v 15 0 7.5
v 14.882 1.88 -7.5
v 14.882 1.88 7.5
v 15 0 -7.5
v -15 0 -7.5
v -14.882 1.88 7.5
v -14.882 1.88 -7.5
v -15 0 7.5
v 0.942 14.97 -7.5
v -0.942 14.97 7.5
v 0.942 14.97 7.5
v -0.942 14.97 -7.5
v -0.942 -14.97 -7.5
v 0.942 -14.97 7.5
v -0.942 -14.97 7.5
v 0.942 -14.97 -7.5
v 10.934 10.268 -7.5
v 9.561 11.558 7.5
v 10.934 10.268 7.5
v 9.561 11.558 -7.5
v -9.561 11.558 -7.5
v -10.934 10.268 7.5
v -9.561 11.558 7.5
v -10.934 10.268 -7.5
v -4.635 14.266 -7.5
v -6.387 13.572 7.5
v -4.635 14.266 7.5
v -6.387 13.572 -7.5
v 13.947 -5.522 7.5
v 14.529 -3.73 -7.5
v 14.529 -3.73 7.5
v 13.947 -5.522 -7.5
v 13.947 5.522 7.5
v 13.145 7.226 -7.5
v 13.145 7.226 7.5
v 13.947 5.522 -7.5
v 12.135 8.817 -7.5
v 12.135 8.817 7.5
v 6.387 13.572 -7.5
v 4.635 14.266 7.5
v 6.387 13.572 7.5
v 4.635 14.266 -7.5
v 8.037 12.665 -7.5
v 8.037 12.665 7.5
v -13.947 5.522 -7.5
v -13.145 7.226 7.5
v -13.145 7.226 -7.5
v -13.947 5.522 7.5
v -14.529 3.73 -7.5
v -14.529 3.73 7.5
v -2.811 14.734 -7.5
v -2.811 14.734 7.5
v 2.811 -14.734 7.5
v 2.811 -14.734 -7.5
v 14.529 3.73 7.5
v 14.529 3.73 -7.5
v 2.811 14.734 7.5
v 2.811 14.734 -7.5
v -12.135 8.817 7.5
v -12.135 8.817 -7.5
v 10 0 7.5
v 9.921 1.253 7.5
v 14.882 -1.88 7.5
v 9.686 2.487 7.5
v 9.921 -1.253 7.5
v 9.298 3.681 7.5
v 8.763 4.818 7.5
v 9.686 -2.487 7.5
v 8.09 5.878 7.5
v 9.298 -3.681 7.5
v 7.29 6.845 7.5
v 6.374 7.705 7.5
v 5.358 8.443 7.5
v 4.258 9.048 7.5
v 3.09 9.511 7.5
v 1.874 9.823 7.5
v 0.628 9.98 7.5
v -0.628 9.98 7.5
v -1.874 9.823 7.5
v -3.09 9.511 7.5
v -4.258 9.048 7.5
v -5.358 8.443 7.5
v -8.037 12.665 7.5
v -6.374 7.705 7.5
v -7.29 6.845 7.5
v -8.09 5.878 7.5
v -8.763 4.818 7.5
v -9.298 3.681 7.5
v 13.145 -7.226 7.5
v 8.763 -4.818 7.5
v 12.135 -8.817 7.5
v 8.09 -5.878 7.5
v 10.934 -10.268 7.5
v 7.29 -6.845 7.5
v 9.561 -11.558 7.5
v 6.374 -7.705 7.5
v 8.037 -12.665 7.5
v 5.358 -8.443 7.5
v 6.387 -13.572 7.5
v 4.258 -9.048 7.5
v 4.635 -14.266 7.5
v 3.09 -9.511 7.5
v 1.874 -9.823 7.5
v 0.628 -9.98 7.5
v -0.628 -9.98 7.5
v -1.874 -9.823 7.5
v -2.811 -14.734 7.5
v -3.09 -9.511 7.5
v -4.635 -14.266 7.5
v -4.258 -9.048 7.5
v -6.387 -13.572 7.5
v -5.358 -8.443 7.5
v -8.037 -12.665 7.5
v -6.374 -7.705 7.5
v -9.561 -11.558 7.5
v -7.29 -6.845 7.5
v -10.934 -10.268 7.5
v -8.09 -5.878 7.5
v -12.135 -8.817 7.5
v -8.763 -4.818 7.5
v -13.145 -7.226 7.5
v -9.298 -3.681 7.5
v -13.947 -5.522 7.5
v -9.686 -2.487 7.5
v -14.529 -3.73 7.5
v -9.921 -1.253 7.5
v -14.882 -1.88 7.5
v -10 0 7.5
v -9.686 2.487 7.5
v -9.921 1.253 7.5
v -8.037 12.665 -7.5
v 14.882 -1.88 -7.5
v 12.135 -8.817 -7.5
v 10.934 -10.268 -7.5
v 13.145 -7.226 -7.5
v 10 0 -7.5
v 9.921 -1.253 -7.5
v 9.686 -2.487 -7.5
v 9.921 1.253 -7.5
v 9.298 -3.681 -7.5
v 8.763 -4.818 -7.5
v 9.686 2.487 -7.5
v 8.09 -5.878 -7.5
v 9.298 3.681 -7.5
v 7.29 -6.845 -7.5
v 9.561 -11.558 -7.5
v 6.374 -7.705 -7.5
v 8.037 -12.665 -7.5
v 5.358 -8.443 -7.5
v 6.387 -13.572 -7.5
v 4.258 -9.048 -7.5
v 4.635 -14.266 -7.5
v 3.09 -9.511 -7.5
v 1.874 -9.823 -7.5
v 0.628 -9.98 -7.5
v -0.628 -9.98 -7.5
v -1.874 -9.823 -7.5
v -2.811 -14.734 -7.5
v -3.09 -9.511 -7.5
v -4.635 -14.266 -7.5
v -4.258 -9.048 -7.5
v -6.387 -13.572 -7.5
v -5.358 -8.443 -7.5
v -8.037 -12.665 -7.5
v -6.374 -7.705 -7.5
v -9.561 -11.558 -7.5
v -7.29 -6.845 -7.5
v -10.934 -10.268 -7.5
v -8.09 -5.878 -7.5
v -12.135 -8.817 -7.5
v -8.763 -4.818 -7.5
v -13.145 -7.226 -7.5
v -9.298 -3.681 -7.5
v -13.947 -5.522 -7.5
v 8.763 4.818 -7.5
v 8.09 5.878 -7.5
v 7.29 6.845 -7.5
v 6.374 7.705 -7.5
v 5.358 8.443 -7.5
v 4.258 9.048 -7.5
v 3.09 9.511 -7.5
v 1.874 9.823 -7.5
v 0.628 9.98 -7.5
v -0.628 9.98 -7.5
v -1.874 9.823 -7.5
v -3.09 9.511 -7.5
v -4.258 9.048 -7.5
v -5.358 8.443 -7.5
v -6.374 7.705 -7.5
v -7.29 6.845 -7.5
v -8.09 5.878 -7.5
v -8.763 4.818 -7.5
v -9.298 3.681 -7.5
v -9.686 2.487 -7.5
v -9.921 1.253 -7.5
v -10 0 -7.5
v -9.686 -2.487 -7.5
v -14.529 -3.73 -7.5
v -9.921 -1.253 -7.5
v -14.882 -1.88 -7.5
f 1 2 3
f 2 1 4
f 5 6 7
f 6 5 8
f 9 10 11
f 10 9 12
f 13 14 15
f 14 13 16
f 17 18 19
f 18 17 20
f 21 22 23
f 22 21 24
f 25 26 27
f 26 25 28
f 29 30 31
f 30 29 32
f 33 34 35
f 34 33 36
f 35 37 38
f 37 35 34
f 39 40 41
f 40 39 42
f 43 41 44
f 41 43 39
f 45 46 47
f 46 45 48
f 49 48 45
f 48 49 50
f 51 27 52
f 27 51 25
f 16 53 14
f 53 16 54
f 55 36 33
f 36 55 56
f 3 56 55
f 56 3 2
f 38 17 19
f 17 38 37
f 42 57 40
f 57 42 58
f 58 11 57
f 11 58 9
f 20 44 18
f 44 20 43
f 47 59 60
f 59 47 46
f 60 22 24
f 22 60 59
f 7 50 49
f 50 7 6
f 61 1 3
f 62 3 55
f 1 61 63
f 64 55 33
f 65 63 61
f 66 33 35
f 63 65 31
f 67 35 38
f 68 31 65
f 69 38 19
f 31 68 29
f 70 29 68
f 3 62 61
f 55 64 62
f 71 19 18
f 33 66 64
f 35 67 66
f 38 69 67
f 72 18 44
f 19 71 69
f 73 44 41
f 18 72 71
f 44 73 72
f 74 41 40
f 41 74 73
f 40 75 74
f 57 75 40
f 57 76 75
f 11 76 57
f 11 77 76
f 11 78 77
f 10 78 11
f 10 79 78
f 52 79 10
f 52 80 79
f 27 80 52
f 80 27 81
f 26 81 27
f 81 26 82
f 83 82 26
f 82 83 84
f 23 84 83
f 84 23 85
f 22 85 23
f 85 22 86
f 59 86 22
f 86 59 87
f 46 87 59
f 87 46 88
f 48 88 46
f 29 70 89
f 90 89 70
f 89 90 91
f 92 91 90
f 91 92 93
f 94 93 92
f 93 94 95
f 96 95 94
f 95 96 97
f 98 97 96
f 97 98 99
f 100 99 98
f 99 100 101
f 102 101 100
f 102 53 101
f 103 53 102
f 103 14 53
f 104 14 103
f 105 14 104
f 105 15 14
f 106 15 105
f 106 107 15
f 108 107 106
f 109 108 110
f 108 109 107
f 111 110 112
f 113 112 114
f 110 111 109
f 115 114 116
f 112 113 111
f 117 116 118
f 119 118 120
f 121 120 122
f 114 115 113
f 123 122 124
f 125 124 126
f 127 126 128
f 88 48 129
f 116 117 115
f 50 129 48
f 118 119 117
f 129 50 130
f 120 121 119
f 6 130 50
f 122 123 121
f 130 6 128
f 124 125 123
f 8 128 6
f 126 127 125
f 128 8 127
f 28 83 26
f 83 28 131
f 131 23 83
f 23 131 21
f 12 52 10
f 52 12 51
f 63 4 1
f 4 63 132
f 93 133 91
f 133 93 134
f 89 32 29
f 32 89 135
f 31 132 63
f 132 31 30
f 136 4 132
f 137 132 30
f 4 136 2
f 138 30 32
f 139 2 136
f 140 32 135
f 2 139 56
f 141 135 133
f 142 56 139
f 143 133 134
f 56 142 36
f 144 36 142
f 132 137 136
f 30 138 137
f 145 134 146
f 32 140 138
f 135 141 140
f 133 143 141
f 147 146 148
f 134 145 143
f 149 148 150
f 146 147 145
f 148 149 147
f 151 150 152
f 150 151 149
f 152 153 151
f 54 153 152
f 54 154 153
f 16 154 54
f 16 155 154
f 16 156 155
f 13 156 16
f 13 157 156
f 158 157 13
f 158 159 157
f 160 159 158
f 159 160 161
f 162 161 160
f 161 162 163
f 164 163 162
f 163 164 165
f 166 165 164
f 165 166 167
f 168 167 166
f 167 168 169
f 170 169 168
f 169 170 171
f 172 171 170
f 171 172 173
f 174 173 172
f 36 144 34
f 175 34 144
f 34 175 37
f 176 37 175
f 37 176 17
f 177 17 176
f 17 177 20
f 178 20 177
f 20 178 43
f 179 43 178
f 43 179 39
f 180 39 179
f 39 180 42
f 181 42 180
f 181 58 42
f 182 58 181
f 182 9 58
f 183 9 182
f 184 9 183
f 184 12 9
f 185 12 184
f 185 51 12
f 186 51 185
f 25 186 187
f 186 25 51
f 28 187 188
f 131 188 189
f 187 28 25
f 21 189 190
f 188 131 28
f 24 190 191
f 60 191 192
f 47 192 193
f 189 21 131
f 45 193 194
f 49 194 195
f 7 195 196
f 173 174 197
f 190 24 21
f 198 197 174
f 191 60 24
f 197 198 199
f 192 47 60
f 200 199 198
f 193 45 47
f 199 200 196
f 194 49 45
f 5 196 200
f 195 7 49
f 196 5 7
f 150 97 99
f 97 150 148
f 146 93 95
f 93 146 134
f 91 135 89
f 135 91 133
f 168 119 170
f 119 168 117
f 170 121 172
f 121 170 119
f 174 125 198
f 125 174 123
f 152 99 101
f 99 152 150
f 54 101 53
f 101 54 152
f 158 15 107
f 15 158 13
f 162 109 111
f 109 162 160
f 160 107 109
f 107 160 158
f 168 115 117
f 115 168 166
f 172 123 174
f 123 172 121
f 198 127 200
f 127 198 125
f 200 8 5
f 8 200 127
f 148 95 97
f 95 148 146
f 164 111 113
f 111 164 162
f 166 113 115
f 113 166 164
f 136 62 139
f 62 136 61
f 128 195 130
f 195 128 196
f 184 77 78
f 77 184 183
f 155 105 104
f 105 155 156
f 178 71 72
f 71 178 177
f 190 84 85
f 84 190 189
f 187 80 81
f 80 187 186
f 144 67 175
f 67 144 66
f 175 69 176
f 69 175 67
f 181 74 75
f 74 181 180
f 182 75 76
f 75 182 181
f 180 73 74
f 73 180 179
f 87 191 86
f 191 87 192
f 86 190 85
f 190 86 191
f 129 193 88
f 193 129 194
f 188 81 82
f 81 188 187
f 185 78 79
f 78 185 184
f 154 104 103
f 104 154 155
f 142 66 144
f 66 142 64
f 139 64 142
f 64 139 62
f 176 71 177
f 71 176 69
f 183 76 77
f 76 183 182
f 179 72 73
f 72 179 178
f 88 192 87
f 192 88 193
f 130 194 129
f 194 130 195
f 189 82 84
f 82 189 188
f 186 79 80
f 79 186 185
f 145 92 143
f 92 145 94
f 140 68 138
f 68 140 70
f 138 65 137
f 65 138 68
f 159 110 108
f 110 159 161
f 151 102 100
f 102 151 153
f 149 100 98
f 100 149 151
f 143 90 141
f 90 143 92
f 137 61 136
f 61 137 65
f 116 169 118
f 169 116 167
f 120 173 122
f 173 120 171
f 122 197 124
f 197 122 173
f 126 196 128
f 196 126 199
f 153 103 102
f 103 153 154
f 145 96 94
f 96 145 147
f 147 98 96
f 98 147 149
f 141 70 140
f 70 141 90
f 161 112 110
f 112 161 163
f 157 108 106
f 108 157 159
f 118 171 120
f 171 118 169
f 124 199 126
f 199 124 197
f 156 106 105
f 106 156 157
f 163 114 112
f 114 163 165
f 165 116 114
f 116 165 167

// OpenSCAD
$fn = 50;


difference() {
	union() {
		translate(v = [0, 0, -7.5000000000]) {
			cylinder(h = 15, r = 15.0000000000);
		}
	}
	union() {
		translate(v = [0, 0, -100.0000000000]) {
			cylinder(h = 200, r = 10);
		}
	}
}
